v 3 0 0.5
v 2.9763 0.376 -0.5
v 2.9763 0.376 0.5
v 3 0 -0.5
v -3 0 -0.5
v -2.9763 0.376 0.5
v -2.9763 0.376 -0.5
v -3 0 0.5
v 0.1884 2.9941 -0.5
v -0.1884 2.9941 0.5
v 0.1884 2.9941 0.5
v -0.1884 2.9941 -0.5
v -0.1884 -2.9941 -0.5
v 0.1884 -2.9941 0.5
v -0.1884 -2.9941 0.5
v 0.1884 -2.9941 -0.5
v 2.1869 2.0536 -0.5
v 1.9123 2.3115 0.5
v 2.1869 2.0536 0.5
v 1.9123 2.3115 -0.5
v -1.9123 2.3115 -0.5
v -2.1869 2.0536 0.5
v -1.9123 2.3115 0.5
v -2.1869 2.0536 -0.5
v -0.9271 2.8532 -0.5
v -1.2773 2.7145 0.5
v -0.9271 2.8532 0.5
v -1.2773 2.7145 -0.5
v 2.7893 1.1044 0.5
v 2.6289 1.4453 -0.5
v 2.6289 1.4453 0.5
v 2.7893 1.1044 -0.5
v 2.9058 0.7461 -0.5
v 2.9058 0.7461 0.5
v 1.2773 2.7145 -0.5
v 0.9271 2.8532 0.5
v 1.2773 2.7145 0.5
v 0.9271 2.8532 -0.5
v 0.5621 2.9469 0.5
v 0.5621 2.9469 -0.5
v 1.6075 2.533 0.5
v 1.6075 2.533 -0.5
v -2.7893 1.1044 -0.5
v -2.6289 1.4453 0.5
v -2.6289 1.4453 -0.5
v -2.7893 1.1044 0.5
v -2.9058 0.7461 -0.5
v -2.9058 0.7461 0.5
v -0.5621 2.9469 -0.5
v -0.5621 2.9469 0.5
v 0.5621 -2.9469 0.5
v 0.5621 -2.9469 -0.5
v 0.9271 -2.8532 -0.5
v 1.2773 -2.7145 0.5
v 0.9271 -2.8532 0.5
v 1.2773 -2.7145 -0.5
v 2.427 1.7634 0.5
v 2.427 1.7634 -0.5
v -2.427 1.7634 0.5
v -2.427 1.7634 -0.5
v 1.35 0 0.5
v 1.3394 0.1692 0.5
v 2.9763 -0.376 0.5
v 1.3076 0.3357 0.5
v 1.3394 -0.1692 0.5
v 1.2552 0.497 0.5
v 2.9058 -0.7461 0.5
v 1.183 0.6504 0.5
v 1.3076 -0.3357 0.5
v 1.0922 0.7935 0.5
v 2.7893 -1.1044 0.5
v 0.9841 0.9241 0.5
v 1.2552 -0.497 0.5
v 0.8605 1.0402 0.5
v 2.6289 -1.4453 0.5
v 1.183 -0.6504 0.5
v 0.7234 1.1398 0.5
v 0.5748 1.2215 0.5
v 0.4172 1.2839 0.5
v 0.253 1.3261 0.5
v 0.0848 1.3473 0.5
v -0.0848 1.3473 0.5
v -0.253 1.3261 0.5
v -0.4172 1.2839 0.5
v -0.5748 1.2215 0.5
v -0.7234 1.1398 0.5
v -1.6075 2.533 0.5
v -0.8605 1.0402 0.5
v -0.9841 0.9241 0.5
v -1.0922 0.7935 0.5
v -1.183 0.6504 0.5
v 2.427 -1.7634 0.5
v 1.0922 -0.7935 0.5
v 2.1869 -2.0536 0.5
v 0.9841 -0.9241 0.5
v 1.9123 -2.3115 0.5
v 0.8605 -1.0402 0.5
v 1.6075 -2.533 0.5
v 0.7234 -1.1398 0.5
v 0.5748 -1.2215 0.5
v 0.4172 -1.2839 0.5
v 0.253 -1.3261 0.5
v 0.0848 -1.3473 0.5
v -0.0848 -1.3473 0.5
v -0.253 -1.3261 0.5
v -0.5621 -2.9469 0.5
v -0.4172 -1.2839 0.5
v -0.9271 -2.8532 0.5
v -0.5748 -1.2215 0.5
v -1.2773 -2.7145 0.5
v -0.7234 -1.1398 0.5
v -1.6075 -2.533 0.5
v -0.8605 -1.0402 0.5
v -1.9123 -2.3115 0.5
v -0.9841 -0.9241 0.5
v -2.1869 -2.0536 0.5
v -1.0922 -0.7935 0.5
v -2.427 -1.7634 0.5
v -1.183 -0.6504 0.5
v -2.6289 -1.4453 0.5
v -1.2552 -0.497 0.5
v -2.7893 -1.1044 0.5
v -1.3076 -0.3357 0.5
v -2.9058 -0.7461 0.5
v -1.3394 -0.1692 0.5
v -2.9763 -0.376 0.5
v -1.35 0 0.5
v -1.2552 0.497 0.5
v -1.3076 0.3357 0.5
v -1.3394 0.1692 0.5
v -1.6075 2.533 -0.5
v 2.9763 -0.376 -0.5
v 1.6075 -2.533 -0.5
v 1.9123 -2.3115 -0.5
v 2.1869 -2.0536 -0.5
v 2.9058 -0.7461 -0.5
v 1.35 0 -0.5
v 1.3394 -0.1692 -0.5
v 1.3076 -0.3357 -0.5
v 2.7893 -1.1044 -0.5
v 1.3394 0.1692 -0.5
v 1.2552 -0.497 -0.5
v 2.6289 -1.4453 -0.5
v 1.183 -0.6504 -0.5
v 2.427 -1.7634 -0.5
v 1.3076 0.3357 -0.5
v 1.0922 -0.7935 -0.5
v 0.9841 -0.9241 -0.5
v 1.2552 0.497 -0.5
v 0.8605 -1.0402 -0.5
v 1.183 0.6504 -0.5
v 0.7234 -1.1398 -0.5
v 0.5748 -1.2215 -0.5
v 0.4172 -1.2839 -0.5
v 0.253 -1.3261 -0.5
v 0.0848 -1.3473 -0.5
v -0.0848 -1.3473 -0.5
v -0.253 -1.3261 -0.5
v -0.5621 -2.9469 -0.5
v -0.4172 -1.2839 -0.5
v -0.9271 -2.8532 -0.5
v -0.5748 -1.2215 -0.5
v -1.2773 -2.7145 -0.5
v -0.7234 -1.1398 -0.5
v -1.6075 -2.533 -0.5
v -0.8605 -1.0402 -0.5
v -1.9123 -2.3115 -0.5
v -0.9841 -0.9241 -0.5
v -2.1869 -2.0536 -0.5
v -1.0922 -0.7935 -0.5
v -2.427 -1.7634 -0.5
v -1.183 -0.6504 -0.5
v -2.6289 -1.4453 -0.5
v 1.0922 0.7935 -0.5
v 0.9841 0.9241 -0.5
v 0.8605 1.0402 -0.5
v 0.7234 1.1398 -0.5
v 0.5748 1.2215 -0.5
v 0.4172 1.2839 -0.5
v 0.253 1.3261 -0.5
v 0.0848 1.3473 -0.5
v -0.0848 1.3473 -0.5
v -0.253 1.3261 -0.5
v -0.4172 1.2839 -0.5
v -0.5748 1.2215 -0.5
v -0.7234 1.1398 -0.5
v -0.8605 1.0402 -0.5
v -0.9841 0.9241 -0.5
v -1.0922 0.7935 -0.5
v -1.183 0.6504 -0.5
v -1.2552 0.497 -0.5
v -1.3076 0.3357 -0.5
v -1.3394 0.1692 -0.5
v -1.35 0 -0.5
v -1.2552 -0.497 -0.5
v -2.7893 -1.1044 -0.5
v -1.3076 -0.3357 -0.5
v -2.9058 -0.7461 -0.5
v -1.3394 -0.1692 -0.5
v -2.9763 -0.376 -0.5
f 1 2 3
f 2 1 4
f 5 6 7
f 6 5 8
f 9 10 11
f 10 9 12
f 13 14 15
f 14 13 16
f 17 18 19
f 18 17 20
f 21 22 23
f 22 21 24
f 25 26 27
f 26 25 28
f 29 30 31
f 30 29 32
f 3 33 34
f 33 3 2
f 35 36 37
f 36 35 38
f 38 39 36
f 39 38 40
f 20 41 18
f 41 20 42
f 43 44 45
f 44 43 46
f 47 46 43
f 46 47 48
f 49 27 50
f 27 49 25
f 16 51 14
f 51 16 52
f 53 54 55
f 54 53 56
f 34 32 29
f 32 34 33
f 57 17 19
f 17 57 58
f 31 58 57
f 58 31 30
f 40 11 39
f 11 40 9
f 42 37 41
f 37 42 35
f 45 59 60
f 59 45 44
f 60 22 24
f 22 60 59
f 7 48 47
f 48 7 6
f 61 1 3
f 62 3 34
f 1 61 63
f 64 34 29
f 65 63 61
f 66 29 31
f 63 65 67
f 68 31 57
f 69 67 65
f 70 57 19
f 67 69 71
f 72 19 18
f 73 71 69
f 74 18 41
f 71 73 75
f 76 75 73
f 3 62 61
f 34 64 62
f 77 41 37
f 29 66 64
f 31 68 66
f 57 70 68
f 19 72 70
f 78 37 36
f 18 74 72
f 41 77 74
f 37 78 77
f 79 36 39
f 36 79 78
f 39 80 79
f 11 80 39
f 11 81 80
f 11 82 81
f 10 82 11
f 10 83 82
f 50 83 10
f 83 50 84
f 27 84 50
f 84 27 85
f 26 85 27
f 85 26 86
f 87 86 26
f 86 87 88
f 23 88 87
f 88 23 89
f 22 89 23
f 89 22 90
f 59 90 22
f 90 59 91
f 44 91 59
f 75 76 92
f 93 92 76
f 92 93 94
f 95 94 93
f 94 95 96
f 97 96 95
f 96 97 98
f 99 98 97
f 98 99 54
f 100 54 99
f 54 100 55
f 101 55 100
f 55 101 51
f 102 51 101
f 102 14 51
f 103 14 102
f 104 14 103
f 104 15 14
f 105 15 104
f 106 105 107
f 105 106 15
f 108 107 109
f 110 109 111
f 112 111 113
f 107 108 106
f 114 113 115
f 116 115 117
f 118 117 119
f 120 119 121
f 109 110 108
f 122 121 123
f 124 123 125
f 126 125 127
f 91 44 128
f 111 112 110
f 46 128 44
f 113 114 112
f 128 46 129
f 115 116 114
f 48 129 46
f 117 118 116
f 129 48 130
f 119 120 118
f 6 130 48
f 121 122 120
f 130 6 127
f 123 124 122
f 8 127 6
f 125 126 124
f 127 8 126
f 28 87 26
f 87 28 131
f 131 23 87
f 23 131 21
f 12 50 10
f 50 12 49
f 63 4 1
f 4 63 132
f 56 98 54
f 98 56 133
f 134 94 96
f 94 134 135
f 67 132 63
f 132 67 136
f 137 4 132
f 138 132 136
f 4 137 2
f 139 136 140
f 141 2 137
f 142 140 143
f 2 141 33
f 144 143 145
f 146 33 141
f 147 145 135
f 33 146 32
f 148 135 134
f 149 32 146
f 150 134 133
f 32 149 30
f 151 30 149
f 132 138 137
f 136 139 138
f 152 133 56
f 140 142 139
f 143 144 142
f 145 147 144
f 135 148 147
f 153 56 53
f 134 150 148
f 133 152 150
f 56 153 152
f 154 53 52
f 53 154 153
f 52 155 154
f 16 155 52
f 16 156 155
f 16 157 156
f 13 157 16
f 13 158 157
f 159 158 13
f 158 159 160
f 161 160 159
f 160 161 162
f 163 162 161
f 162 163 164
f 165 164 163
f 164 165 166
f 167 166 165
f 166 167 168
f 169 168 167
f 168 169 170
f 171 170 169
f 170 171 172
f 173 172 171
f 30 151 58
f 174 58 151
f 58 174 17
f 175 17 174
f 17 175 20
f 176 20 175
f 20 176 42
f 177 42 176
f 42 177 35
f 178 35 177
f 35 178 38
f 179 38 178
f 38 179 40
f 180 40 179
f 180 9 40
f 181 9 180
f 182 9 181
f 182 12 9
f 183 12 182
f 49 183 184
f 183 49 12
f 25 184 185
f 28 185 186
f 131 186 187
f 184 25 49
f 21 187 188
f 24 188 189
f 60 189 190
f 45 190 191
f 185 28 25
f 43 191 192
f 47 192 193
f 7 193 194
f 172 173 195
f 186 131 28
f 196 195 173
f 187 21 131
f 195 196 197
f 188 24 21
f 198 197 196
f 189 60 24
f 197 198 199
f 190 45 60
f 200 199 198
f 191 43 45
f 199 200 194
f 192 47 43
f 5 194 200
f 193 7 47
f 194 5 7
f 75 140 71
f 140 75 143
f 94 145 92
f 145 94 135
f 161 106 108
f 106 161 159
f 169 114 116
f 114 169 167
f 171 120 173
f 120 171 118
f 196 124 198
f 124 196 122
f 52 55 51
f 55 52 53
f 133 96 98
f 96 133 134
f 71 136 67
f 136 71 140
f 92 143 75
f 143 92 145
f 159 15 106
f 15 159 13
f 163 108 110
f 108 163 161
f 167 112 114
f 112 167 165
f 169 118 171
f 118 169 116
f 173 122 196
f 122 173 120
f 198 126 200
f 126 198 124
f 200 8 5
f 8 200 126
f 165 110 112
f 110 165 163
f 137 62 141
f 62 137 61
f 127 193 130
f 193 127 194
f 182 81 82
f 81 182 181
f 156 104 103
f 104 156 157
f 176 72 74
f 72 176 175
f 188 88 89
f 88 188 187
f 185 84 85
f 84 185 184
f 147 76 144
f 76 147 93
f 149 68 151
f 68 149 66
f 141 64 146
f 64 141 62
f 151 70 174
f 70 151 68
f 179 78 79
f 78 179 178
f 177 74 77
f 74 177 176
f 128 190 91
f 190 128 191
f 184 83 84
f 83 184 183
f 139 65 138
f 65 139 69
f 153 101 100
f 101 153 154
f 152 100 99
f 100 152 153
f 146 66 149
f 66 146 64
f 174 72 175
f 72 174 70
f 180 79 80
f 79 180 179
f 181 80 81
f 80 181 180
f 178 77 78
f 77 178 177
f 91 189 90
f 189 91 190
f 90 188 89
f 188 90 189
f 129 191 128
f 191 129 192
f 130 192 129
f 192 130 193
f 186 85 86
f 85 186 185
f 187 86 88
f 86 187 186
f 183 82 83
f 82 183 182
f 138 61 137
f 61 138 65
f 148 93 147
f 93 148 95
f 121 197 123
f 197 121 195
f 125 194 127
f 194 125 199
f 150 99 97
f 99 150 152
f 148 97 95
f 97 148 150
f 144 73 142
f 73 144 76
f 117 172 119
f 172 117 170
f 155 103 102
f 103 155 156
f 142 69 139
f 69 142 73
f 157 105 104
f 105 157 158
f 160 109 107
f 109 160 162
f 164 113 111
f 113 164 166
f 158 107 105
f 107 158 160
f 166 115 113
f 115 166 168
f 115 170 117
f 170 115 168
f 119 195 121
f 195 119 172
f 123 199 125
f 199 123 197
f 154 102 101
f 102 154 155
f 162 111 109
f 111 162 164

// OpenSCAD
$fn = 50;


difference() {
	union() {
		translate(v = [0, 0, -0.5000000000]) {
			cylinder(h = 1, r = 3.0000000000);
		}
	}
	union() {
		translate(v = [0, 0, -100.0000000000]) {
			cylinder(h = 200, r = 1.3500000000);
		}
	}
}
